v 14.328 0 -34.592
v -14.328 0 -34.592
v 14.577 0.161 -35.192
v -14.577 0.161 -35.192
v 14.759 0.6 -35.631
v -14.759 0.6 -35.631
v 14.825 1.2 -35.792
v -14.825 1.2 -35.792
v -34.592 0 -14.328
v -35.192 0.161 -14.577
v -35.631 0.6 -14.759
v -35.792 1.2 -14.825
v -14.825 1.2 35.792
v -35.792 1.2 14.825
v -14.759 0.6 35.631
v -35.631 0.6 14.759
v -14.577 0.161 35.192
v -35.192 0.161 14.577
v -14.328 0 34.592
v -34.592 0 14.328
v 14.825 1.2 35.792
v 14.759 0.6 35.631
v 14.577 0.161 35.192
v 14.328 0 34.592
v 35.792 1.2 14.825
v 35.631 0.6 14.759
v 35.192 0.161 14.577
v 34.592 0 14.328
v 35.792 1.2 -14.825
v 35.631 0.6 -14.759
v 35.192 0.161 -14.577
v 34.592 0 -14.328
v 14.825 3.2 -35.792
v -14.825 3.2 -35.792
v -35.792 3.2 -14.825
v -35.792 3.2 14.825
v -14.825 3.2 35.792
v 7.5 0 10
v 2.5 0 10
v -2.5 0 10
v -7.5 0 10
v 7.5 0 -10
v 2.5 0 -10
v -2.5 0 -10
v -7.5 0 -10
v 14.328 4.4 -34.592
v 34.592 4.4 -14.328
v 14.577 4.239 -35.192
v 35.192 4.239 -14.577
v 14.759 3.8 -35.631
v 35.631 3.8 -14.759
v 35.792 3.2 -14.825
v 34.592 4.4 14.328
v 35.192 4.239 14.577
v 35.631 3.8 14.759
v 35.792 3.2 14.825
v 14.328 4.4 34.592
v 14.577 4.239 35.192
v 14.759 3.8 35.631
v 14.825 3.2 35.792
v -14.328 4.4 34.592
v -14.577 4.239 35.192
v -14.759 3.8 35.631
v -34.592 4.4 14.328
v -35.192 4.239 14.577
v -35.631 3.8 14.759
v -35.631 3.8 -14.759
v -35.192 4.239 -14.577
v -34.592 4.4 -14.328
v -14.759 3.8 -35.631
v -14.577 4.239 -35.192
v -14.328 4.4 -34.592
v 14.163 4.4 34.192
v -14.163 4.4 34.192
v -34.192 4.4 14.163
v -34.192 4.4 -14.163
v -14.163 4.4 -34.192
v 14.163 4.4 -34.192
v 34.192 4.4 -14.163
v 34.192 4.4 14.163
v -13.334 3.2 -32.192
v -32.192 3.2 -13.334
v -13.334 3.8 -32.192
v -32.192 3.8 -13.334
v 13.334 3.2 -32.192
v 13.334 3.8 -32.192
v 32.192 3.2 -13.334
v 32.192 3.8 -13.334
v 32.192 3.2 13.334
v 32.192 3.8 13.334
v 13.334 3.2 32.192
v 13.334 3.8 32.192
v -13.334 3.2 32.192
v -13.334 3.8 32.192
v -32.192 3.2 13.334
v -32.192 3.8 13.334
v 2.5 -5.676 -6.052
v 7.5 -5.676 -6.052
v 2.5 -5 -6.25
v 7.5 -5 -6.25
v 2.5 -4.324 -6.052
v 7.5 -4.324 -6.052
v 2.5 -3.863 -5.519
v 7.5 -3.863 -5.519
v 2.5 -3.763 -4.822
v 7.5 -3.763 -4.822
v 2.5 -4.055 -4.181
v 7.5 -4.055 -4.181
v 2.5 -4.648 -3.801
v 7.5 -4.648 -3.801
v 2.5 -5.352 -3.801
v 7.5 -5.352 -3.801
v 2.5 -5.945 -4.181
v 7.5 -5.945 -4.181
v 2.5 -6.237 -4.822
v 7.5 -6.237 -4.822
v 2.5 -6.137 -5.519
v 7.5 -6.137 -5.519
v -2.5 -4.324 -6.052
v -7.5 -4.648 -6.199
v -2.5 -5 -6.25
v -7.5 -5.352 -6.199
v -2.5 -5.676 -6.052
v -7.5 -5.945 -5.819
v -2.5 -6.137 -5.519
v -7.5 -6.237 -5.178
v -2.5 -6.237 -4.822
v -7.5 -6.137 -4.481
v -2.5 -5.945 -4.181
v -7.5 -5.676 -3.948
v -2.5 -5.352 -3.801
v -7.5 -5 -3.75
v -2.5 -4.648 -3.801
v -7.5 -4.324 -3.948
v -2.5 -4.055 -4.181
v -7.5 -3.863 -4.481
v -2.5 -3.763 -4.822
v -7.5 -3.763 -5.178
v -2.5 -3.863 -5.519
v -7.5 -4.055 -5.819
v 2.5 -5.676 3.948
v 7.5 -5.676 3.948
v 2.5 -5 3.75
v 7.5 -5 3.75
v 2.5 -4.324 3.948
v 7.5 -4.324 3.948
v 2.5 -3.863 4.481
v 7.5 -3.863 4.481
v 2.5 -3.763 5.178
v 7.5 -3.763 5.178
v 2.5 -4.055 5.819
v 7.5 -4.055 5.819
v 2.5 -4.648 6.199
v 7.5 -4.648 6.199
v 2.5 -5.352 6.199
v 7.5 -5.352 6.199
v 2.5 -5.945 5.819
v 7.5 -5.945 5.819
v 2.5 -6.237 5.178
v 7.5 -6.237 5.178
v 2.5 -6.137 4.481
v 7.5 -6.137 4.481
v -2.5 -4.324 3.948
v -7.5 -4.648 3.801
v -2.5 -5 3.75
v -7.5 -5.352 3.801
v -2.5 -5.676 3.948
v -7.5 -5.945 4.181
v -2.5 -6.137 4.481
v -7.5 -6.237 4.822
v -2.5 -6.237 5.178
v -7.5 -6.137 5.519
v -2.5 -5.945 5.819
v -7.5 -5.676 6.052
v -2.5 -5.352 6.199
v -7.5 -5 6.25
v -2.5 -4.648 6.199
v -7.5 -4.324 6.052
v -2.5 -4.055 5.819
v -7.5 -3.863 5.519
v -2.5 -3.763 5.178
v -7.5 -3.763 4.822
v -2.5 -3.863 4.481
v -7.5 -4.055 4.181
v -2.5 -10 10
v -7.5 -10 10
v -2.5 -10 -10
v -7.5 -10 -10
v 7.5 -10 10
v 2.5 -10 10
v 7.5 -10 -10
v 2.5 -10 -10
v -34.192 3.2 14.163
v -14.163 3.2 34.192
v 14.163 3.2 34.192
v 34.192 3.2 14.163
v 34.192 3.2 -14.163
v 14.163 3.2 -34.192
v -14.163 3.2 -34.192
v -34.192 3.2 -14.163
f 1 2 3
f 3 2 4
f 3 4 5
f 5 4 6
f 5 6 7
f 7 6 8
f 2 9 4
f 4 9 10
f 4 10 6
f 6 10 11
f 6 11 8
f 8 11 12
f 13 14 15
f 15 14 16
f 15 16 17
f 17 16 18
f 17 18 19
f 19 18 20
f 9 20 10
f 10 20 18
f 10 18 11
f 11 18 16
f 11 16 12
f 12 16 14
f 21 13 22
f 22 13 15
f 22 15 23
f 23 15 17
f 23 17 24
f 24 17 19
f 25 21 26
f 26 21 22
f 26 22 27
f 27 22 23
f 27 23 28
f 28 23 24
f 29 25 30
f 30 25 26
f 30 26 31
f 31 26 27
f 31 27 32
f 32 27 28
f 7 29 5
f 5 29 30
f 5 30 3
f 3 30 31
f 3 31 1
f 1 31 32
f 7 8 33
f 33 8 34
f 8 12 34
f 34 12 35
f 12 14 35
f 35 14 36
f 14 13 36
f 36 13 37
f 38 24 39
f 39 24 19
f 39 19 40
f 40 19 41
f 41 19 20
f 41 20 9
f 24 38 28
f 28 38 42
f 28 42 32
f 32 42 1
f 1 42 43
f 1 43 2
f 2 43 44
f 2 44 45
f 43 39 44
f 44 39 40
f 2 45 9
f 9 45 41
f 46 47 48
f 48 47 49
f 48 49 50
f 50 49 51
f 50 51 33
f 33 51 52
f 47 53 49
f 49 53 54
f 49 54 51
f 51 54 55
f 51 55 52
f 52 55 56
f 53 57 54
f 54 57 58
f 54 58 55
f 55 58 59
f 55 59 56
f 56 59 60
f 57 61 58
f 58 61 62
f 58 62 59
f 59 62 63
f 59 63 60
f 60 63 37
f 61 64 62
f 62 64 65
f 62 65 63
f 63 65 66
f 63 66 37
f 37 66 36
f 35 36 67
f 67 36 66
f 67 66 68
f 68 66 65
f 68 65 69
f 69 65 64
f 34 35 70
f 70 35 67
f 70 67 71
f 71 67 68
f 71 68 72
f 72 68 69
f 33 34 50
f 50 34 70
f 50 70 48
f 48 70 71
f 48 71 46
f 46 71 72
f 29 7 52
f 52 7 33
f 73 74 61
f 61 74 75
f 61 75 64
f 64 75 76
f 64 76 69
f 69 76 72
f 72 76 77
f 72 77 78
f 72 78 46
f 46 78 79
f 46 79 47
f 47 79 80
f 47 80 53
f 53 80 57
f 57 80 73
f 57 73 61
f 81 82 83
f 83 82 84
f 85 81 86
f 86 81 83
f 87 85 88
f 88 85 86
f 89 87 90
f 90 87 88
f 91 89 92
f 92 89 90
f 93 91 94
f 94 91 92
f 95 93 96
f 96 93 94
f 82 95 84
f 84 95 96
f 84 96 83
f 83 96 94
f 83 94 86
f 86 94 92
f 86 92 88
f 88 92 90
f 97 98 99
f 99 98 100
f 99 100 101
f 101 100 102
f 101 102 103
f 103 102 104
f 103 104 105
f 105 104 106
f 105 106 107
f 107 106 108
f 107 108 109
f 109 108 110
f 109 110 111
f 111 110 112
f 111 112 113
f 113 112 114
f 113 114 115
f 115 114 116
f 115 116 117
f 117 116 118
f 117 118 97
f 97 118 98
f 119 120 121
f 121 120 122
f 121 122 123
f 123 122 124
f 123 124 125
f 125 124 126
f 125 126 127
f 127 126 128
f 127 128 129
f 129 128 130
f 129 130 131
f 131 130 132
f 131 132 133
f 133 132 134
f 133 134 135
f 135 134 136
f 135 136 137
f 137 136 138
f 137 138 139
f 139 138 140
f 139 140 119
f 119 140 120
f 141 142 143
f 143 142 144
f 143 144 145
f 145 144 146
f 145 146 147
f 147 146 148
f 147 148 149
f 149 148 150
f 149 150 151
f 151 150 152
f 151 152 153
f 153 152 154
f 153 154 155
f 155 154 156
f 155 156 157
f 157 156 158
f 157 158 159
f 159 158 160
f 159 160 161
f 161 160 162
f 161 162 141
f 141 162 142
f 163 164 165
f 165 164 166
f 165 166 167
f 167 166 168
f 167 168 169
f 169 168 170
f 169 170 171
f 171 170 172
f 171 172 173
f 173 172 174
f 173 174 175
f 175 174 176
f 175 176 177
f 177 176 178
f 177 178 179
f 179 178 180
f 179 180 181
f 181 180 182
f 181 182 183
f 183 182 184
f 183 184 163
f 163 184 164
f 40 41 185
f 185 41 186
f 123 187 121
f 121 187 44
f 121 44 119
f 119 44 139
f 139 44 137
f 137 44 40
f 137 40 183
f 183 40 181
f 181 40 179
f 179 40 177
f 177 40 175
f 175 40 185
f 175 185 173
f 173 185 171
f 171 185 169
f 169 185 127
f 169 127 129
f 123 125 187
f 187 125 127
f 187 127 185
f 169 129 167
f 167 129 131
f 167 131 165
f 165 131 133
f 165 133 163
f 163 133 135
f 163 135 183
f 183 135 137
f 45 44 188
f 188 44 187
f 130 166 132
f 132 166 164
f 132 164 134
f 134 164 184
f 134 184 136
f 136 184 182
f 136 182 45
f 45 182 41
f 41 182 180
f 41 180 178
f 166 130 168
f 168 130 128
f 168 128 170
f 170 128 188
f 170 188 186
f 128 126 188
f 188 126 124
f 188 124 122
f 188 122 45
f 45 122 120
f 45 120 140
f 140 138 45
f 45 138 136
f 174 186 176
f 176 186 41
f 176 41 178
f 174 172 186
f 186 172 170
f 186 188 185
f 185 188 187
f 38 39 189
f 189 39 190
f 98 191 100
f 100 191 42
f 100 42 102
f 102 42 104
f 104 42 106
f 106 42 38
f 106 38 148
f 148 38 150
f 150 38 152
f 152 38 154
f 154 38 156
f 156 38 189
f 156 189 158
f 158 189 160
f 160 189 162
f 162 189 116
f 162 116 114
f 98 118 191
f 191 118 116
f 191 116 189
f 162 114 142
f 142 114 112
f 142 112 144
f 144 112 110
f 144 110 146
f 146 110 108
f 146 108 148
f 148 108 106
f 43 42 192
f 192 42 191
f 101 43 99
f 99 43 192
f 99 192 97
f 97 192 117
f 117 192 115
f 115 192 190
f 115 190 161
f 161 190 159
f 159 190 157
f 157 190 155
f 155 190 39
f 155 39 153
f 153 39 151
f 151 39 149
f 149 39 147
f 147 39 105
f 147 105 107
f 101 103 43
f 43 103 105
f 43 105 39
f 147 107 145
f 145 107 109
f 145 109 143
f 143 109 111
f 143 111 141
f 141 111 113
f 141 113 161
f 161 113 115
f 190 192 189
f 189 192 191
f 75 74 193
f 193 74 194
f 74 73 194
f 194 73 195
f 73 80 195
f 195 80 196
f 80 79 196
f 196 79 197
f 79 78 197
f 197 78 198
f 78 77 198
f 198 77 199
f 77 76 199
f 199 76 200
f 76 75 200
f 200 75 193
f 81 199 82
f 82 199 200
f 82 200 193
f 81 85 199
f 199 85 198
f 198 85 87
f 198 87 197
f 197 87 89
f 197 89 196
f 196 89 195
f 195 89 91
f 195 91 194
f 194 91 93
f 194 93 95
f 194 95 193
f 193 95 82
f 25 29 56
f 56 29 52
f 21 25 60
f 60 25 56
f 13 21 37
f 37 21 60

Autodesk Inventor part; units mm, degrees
ref_plane "YZ Plane" through (0, 0, 0) normal (1, 0, 0) x (0, 1, 0)
ref_plane "XZ Plane" through (0, 0, 0) normal (0, 1, 0) x (-1, 0, 0)
ref_plane "XY Plane" through (0, 0, 0) normal (0, 0, 1) x (1, 0, 0)
sketch "스케치3" plane through (0, 0, 0) normal (0, 1, 0) x (-1, 0, 0)
  line L0 (35.7919, -14.8255) -> (14.8255, -35.7919)
  line L1 (14.8255, -35.7919) -> (-14.8255, -35.7919)
  line L2 (-14.8255, -35.7919) -> (-35.7919, -14.8255)
  line L3 (-35.7919, -14.8255) -> (-35.7919, 14.8255)
  line L4 (-35.7919, 14.8255) -> (-14.8255, 35.7919)
  line L5 (-14.8255, 35.7919) -> (14.8255, 35.7919)
  line L6 (14.8255, 35.7919) -> (35.7919, 14.8255)
  line L7 (35.7919, 14.8255) -> (35.7919, -14.8255)
  line L8 (13.5, -32.5919) -> (-13.5, -32.5919)
  line L9 (-13.5, -32.5919) -> (-32.5919, -13.5)
  line L10 (-32.5919, -13.5) -> (-32.5919, 13.5)
  line L11 (-32.5919, 13.5) -> (-13.5, 32.5919)
  line L12 (-13.5, 32.5919) -> (13.5, 32.5919)
  line L13 (13.5, 32.5919) -> (32.5919, 13.5)
  line L14 (32.5919, 13.5) -> (32.5919, -13.5)
  line L15 (32.5919, -13.5) -> (13.5, -32.5919)
  point P0 (0, 0)
  point P1 (0, 0)
  point P2 (0, 0)
  point P3 (0, 0)
  dimension "d66" = 27
  dimension "d67" = 3.2
extrude "돌출2" add sketch "스케치3" along normal blind 4.4 contours L0 L1 L2 L3 L4 L5 L6 L7 | L8 L9 L10 L11 L12 L13 L14 L15
sketch "스케치4" plane through (0, 4.4, 0) normal (0, 1, 0) x (1, 0, 0)
  line L0 (13.5, -32.5919) -> (-13.5, -32.5919)
  line L1 (-13.5, -32.5919) -> (-32.5919, -13.5)
  line L2 (-32.5919, -13.5) -> (-32.5919, 13.5)
  line L3 (-32.5919, 13.5) -> (-13.5, 32.5919)
  line L4 (-13.5, 32.5919) -> (13.5, 32.5919)
  line L5 (13.5, 32.5919) -> (32.5919, 13.5)
  line L6 (32.5919, 13.5) -> (32.5919, -13.5)
  line L7 (32.5919, -13.5) -> (13.5, -32.5919)
  line L8 (-14.1627, 34.1919) -> (14.1627, 34.1919)
  line L9 (14.1627, 34.1919) -> (34.1919, 14.1627)
  line L10 (34.1919, 14.1627) -> (34.1919, -14.1627)
  line L11 (34.1919, -14.1627) -> (14.1627, -34.1919)
  line L12 (14.1627, -34.1919) -> (-14.1627, -34.1919)
  line L13 (-14.1627, -34.1919) -> (-34.1919, -14.1627)
  line L14 (-34.1919, -14.1627) -> (-34.1919, 14.1627)
  line L15 (-34.1919, 14.1627) -> (-14.1627, 34.1919)
  line L16 (-13.3343, 32.1919) -> (13.3343, 32.1919)
  line L17 (13.3343, 32.1919) -> (32.1919, 13.3343)
  line L18 (32.1919, 13.3343) -> (32.1919, -13.3343)
  line L19 (32.1919, -13.3343) -> (13.3343, -32.1919)
  line L20 (13.3343, -32.1919) -> (-13.3343, -32.1919)
  line L21 (-13.3343, -32.1919) -> (-32.1919, -13.3343)
  line L22 (-32.1919, -13.3343) -> (-32.1919, 13.3343)
  line L23 (-32.1919, 13.3343) -> (-13.3343, 32.1919)
  line L24 (-14.8255, 35.7919) -> (-35.7919, 14.8255) projected
  point P0 (0, 0)
  point P1 (0, 0)
  point P2 (0, 0)
  point P3 (0, 0)
  dimension "d7" = 27
  dimension "d99" = 1.6
  dimension "d100" = 2
extrude "돌출3" cut sketch "스케치4" against normal blind 1.2 contours L0 L1 L2 L3 L4 L5 L6 L7 | L8 L9 L10 L11 L12 L13 L14 L15 | L16 L17 L18 L19 L20 L21 L22 L23
sketch "스케치9" plane through (0, 0, 0) normal (0, -1, 0) x (1, 0, 0)
  line L0 (7.5, 10) -> (2.5, 10)
  line L1 (2.5, 10) -> (2.5, -10)
  line L2 (2.5, -10) -> (7.5, -10)
  line L3 (7.5, -10) -> (7.5, 10)
  line L4 (7.5, 10) -> (2.5, -10) construction
  line L5 (2.5, 10) -> (7.5, -10) construction
  line L6 (-2.5, 10) -> (-7.5, 10)
  line L7 (-7.5, 10) -> (-7.5, -10)
  line L8 (-7.5, -10) -> (-2.5, -10)
  line L9 (-2.5, 10) -> (-7.5, -10) construction
  line L10 (-7.5, 10) -> (-2.5, -10) construction
  line L11 (-2.5, -10) -> (-2.5, 10)
  point P0 (0, 0)
  point P1 (5, 0)
  point P2 (-5, 0)
  dimension "d42" = 20
  dimension "d43" = 5
  dimension "d44" = 2.5
  dimension "d47" = 10
extrude "돌출8" add sketch "스케치9" along normal blind 10
sketch "스케치10" plane through (-7.5, 0, -10) normal (-1, 0, 0) x (0, 0, 1)
  circle A0 centre (15, -5) radius 1.25
  line L0 (19.9591, 0) -> (0.0886, 0)
  line L1 (24.8255, 0) -> (-4.8255, 0) projected
  circle A1 centre (5, -5) radius 1.25
  line L2 (20, 0) -> (20, -10) projected
  point P0 (10, 0)
  dimension "d54" = 2.5
  dimension "d57" = 10
  dimension "d62" = 5
  dimension "d63" = 5
extrude "돌출9" cut sketch "스케치10" against normal blind 20
sketch "스케치11" plane through (0, 3.2, 0) normal (0, 1, 0) x (1, 0, 0)
  line L0 (-13.3343, 32.1919) -> (13.3343, 32.1919)
  line L1 (13.3343, 32.1919) -> (32.1919, 13.3343)
  line L2 (32.1919, 13.3343) -> (32.1919, -13.3343)
  line L3 (32.1919, -13.3343) -> (13.3343, -32.1919)
  line L4 (13.3343, -32.1919) -> (-13.3343, -32.1919)
  line L5 (-13.3343, -32.1919) -> (-32.1919, -13.3343)
  line L6 (-32.1919, -13.3343) -> (-32.1919, 13.3343)
  line L7 (-32.1919, 13.3343) -> (-13.3343, 32.1919)
  line L8 (-14.1627, 34.1919) -> (14.1627, 34.1919) projected
  line L9 (-12.0917, 29.1919) -> (12.0917, 29.1919)
  line L10 (12.0917, 29.1919) -> (29.1919, 12.0917)
  line L11 (29.1919, 12.0917) -> (29.1919, -12.0917)
  line L12 (29.1919, -12.0917) -> (12.0917, -29.1919)
  line L13 (12.0917, -29.1919) -> (-12.0917, -29.1919)
  line L14 (-12.0917, -29.1919) -> (-29.1919, -12.0917)
  line L15 (-29.1919, -12.0917) -> (-29.1919, 12.0917)
  line L16 (-29.1919, 12.0917) -> (-12.0917, 29.1919)
  point P0 (0, 0)
  point P1 (0, 0)
  point P2 (0, 0)
  dimension "d70" = 2
  dimension "d71" = 3
extrude "돌출10" add sketch "스케치11" along normal blind 0.6 contours L0 L1 L2 L3 L4 L5 L6 L7 | L9 L10 L11 L12 L13 L14 L15 L16
fillet "모깎기1" radius 1.2 16 edges at (-25.3087, 4.4, 25.3087) (0, 4.4, 35.7919) (25.3087, 4.4, 25.3087) (35.7919, 4.4, 0) (25.3087, 4.4, -25.3087) (0, 4.4, -35.7919) (-25.3087, 4.4, -25.3087) (-35.7919, 4.4, 0) (-25.3087, 0, 25.3087) (0, 0, 35.7919) (25.3087, 0, 25.3087) (35.7919, 0, 0) (25.3087, 0, -25.3087) (0, 0, -35.7919) (-25.3087, 0, -25.3087) (-35.7919, 0, 0)
properties part number "OV-PAM_bottom_2"
